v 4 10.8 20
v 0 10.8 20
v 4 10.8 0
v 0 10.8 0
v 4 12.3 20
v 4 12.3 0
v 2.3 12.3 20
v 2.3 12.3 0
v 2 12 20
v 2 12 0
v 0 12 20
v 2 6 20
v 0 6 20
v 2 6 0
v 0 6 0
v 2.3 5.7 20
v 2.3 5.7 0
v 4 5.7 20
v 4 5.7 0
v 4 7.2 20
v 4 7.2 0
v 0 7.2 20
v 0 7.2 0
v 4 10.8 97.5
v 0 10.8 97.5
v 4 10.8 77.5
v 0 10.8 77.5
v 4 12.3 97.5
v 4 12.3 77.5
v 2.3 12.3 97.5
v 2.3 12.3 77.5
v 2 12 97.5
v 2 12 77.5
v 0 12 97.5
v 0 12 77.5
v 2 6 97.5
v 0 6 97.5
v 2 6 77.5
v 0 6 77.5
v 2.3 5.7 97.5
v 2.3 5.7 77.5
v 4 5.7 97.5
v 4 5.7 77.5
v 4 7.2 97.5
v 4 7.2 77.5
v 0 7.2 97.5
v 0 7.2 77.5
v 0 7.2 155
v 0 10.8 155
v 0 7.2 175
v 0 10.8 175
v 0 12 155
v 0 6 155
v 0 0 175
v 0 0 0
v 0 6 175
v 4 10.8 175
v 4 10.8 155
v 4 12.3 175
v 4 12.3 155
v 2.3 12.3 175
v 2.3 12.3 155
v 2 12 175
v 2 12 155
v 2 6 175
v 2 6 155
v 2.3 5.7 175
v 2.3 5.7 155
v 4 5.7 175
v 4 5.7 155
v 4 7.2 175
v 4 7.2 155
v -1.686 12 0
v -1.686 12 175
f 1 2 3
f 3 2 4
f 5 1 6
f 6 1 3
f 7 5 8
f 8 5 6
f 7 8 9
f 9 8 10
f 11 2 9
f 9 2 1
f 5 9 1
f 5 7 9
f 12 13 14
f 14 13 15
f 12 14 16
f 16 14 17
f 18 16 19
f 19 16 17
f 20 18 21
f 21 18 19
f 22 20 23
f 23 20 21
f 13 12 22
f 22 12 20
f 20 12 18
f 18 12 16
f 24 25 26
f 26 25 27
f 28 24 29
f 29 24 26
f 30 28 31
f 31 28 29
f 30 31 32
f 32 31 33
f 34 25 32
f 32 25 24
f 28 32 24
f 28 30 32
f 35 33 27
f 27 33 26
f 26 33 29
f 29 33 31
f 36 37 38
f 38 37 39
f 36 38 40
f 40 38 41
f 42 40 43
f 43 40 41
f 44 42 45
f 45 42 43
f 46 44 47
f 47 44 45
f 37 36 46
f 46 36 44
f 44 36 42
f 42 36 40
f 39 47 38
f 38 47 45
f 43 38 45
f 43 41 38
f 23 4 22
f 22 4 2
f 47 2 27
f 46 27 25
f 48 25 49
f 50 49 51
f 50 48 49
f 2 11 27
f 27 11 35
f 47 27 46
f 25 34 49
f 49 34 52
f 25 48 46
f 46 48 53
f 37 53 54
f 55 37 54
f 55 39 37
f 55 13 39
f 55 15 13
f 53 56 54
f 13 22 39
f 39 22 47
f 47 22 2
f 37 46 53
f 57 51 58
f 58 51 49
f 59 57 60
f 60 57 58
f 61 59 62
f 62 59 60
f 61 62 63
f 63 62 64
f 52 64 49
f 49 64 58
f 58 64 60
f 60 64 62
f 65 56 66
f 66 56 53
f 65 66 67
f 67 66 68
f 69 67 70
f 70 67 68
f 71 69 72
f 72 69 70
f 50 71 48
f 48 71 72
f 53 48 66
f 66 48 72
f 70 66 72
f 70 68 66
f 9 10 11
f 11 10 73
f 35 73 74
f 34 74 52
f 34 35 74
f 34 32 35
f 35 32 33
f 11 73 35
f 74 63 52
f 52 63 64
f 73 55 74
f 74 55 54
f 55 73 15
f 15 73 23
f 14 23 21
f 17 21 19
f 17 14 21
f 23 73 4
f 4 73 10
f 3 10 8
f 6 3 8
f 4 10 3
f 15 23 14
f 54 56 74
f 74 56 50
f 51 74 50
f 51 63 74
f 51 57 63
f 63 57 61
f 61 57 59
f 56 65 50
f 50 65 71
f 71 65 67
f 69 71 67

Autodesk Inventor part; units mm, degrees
ref_plane "YZ Plane" through (0, 0, 0) normal (1, 0, 0) x (0, 1, 0)
ref_plane "XZ Plane" through (0, 0, 0) normal (0, 1, 0) x (-1, 0, 0)
ref_plane "XY Plane" through (0, 0, 0) normal (0, 0, 1) x (1, 0, 0)
sketch "Sketch1" plane through (0, 0, 0) normal (0, 0, 1) x (1, 0, 0)
  line L0 (0, 0) -> (-1.6865, 12)
  line L1 (-1.6865, 12) -> (0, 12)
  line L2 (0, 12) -> (0, 0)
  dimension "d0" = 8
  dimension "d1" = 12
extrude "Extrusion1" add sketch "Sketch1" along normal blind 175
sketch "Sketch2" plane through (0, 0, 175) normal (0, 0, 1) x (1, 0, 0)
  line L0 (0, 0) -> (0, 12) projected
  line L1 (0, 12) -> (-1.6865, 12) projected
  line L2 (0, 12) -> (2, 12)
  line L3 (2, 12) -> (2.3, 12.3)
  line L4 (2.3, 12.3) -> (4, 12.3)
  line L5 (4, 12.3) -> (4, 10.8)
  line L6 (4, 10.8) -> (0, 10.8)
  line L7 (0, 7.2) -> (4, 7.2)
  line L8 (4, 7.2) -> (4, 5.7)
  line L9 (4, 5.7) -> (2.3, 5.7)
  line L10 (2.3, 5.7) -> (2, 6)
  line L11 (2, 6) -> (0, 6)
  dimension "d4" = 2
  dimension "d5" = 4
  dimension "d6" = 135
  dimension "d9" = 135
  dimension "d17" = 6
  dimension "d18" = 6.6
  dimension "d19" = 1.2
extrude "Extrusion2" add sketch "Sketch2" against normal blind 20
pattern_linear "Rectangular Pattern1" count 3 spacing 77.5 along (0, 0, -1) of "Extrusion2"
properties part number "LedStripHolder"
